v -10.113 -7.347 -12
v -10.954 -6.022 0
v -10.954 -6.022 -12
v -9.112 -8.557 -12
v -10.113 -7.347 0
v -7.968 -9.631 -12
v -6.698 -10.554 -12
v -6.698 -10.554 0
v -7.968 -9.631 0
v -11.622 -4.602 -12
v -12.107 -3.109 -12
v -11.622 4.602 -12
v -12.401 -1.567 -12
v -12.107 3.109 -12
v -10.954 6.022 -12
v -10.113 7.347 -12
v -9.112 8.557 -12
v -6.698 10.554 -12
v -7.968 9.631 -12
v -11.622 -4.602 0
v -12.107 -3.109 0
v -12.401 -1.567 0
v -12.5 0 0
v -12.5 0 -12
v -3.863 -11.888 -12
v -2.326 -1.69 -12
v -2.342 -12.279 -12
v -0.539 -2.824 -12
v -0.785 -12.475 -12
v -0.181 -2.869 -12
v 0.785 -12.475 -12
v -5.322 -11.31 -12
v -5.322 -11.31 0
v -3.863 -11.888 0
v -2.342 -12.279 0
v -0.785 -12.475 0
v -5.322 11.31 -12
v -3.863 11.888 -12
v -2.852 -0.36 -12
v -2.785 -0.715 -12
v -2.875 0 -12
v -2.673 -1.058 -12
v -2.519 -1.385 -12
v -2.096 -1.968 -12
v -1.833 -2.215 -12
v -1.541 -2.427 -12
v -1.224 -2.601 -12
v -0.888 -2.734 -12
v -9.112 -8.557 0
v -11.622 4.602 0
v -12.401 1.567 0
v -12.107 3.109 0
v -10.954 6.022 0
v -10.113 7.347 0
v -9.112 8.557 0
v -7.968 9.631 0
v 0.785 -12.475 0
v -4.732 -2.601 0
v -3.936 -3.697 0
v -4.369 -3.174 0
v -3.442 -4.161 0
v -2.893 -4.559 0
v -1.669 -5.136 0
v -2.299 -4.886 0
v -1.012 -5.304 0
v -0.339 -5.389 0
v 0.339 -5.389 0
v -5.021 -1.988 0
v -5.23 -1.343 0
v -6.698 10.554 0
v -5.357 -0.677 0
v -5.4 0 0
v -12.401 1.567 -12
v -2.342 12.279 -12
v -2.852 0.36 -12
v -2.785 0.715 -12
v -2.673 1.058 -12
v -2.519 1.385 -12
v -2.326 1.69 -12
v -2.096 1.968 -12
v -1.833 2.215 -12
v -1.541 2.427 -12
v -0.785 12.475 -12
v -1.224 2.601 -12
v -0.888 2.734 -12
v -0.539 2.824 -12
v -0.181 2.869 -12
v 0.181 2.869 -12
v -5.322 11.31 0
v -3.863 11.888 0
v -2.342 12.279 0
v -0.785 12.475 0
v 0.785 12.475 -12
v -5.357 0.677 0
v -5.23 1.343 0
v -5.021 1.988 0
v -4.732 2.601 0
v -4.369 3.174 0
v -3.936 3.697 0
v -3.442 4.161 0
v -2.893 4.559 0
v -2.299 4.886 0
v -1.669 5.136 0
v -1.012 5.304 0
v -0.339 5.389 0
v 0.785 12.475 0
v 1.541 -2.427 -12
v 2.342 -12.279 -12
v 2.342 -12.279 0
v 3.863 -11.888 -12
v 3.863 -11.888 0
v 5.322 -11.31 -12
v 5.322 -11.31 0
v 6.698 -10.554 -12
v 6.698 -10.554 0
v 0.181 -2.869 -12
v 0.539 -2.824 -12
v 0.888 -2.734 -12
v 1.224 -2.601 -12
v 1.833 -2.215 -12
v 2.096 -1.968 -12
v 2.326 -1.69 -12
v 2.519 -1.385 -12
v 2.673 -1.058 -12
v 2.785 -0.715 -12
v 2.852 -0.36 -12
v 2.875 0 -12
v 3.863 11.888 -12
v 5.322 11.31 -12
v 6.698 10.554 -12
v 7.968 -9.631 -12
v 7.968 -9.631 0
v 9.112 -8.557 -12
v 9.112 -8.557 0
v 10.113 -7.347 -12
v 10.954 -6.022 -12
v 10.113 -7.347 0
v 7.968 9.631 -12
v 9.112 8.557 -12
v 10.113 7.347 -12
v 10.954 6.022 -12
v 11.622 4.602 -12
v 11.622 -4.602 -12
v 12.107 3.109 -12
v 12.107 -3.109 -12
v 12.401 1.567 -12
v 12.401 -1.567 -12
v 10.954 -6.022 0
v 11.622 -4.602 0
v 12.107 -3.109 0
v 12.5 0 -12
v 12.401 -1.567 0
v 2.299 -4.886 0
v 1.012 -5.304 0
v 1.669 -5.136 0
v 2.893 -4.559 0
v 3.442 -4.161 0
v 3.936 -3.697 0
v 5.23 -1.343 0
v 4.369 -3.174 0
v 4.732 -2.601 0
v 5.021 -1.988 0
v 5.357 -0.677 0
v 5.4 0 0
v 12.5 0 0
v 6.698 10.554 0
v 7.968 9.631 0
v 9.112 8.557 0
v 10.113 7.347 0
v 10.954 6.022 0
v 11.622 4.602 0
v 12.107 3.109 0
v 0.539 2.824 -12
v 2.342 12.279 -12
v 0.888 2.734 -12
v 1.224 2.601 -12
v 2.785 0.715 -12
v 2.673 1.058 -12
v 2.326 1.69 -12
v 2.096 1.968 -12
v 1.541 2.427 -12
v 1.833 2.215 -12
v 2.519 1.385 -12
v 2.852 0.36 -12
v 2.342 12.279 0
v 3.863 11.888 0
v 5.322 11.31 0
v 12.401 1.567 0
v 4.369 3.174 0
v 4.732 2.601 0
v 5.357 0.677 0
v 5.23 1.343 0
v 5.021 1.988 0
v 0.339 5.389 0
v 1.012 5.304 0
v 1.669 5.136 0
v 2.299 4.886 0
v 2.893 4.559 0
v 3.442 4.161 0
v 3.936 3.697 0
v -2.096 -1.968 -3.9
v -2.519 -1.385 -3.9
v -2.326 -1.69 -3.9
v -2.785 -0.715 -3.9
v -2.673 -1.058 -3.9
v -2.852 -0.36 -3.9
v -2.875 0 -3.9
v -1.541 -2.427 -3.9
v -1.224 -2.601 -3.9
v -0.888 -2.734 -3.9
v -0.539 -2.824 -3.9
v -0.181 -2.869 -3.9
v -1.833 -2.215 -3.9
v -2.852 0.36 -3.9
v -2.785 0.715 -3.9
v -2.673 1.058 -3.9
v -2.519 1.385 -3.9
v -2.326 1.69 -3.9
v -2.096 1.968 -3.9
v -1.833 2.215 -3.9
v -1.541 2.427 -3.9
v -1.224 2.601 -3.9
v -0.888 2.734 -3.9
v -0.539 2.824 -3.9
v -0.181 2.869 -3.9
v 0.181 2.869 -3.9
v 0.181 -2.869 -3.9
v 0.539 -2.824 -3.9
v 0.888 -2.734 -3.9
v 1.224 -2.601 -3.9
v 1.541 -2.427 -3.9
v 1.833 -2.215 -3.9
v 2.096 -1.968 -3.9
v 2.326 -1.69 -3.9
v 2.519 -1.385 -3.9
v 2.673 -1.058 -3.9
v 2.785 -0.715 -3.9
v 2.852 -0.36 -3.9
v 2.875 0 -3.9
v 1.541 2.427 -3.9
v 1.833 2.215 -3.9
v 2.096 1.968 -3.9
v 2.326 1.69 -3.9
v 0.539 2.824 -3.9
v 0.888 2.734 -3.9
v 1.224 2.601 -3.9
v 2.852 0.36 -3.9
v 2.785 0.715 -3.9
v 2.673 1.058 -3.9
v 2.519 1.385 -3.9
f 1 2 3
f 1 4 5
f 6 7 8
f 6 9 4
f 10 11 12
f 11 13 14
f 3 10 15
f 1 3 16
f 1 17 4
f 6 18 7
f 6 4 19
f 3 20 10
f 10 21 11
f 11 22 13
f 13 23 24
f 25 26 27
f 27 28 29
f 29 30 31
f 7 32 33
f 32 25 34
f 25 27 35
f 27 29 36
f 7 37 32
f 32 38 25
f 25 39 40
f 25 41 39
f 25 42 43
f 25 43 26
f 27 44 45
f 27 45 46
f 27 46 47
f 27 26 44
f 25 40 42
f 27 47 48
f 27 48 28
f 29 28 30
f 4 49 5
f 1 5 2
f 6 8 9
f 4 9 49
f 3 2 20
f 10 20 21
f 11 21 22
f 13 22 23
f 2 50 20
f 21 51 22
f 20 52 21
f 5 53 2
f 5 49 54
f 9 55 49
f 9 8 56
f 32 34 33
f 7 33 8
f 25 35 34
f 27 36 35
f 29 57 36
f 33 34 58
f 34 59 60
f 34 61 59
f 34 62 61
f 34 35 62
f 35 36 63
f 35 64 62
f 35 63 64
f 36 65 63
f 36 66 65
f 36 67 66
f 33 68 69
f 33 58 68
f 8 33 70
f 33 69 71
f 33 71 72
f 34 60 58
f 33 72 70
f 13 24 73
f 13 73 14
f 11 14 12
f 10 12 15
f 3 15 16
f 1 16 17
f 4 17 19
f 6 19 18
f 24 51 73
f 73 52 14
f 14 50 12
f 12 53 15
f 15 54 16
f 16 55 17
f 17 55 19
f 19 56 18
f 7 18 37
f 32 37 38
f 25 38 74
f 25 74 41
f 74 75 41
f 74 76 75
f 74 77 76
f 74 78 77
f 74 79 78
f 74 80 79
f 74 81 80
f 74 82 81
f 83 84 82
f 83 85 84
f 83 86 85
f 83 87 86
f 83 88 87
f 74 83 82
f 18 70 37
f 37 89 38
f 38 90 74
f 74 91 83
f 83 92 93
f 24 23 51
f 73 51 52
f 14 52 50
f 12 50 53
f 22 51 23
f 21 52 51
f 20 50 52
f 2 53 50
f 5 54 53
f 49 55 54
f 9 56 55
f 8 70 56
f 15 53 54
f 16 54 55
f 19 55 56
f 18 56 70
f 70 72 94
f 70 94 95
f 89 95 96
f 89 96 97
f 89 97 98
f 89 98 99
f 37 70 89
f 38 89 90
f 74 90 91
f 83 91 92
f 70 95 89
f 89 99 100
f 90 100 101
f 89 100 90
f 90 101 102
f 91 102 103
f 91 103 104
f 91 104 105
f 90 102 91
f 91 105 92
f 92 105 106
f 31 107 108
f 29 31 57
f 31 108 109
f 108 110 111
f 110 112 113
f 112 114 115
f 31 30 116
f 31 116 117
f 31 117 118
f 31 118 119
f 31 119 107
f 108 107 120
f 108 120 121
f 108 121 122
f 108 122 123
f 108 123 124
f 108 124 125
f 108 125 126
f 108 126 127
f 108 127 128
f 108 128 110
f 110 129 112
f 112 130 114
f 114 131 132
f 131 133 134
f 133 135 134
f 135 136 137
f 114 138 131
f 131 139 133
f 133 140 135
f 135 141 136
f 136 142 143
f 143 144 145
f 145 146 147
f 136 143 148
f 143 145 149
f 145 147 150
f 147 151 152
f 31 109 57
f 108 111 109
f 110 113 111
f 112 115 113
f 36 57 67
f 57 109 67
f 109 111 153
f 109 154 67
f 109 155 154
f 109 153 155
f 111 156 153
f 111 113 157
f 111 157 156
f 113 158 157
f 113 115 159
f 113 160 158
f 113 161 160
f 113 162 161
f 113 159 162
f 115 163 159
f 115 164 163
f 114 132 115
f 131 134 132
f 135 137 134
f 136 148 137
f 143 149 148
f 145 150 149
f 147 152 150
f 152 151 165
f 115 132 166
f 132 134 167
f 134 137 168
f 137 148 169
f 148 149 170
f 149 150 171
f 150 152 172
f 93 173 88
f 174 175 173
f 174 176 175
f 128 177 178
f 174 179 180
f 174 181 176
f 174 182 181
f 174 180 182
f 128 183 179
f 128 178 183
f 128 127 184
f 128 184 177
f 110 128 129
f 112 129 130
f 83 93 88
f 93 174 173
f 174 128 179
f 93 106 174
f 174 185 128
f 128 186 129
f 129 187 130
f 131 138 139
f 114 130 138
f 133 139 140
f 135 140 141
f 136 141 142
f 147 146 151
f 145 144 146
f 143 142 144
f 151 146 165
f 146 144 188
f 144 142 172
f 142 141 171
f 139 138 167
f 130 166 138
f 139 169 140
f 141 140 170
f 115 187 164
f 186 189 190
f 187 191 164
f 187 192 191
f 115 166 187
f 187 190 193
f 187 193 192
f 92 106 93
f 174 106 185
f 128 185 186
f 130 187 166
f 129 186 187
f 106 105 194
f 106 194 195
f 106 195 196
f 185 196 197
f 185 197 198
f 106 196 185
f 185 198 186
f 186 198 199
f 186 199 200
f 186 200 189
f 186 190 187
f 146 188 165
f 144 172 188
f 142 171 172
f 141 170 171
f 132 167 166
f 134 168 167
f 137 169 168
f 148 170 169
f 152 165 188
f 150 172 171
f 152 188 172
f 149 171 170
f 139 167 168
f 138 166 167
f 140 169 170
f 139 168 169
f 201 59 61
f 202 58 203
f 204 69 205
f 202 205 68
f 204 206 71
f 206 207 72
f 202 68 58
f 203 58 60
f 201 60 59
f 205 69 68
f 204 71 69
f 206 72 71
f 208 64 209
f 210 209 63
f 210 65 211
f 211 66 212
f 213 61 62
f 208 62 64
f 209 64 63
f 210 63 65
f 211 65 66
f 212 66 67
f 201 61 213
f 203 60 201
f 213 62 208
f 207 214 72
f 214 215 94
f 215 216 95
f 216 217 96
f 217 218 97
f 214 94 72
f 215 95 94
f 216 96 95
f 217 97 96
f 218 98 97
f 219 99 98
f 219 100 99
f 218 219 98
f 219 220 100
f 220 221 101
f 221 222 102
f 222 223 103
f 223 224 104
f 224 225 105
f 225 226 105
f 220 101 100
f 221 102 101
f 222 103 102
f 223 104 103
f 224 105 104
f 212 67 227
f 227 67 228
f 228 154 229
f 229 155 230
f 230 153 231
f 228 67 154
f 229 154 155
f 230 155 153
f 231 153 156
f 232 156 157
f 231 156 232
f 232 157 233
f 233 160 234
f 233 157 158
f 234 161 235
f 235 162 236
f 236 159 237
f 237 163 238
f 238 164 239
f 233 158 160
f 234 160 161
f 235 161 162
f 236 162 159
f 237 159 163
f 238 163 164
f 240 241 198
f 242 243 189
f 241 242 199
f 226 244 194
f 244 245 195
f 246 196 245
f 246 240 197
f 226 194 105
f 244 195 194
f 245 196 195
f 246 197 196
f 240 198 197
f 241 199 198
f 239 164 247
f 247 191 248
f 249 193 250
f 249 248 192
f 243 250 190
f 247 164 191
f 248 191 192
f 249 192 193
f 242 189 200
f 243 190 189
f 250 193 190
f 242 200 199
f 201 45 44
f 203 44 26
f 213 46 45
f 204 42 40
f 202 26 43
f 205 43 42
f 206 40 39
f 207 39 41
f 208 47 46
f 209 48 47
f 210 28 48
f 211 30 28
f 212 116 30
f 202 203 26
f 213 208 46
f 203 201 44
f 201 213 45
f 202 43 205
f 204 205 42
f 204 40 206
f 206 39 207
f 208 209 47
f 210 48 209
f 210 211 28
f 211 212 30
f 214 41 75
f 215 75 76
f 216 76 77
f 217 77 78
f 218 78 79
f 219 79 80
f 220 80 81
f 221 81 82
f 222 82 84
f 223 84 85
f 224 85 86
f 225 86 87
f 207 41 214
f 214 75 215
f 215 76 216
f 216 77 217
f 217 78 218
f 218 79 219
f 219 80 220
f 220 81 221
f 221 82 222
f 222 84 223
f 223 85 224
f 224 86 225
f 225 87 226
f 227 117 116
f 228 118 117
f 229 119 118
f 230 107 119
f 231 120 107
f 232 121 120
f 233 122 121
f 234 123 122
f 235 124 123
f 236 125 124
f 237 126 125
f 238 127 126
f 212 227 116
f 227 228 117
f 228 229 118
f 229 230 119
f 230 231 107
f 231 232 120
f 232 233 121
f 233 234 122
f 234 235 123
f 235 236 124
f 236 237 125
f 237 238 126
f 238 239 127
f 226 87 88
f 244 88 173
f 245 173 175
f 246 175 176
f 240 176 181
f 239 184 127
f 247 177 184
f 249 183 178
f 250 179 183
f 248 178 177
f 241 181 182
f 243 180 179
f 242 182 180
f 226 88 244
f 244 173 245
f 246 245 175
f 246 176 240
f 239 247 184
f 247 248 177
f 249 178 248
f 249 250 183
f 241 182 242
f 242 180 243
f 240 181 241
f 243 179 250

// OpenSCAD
$fn = 50;

difference() {
	union() {
		translate(v = [0, 0, -12.0]) {
			cylinder(h = 12, r = 12.5);
		}
		#translate(v = [0, 0, -15.0]) {
			cylinder(h = 15, r = 2.875);
		}
	}
	union() {
		translate(v = [0, 0, 0]) {
			rotate(a = [0, 0, 0]) {
				difference() {
					union() {
						translate(v = [0, 0, -15.0]) {
							cylinder(h = 15, r = 2.6);
						}
						translate(v = [0, 0, -3.9]) {
							cylinder(h = 3.9, r1 = 2.875, r2 = 5.4);
						}
						translate(v = [0, 0, -15.0]) {
							cylinder(h = 15, r = 2.875);
						}
						translate(v = [0, 0, -15.0]) {
							cylinder(h = 15, r = 2.6);
						}
					}
					union();
				}
			}
		}
	}
}
